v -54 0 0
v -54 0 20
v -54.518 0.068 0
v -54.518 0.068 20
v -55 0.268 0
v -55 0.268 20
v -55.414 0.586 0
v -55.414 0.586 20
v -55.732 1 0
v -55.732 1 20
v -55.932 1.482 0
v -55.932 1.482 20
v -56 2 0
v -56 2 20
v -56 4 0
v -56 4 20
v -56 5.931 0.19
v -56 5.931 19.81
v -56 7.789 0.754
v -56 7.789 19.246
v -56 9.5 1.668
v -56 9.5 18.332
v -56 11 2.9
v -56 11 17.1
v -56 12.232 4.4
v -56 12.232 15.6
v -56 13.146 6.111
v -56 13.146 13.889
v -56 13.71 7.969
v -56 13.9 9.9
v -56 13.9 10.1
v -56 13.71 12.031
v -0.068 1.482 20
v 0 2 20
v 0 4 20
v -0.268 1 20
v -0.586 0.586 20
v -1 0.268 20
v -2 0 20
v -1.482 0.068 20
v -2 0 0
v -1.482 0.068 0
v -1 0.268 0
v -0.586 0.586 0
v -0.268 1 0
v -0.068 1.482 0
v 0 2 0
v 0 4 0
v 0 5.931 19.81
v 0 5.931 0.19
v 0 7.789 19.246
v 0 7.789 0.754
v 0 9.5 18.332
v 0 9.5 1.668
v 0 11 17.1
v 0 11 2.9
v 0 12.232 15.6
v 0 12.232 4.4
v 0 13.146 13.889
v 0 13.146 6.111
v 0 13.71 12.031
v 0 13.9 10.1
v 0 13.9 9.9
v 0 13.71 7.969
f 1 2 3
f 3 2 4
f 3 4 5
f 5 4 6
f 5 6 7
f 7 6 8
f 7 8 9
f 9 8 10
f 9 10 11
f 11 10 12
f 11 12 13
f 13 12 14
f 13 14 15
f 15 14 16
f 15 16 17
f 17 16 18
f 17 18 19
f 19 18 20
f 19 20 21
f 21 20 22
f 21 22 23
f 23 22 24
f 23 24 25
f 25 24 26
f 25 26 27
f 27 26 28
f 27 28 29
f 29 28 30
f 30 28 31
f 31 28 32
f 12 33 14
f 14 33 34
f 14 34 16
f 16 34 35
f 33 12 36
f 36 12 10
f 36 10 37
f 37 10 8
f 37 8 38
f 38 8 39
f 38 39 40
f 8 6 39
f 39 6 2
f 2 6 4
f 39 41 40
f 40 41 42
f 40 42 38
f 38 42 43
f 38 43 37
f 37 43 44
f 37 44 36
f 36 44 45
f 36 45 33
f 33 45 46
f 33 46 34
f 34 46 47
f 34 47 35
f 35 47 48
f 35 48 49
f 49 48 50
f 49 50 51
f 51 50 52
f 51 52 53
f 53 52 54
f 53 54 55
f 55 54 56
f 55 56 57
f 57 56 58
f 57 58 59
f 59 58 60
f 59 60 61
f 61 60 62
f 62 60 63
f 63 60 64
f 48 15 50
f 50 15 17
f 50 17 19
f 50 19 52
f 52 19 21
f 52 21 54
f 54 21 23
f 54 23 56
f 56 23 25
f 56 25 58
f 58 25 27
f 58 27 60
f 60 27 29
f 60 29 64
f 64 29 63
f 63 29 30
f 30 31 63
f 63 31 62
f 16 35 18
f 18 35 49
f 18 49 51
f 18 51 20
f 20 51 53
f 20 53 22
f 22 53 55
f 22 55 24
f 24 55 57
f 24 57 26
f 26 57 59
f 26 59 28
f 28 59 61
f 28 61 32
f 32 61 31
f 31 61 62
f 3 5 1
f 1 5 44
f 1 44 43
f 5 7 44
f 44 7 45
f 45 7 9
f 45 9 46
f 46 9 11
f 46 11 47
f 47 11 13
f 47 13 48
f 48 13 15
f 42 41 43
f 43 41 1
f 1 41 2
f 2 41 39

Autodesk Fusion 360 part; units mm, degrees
sketch "Esboço1" plane through (0, 0, 0) normal (0, 1, 0) x (1, 0, 0)
  line L0 (0, 0) -> (-56, 0)
  line L1 (-56, 0) -> (-56, -20)
  line L2 (-56, -20) -> (0, -20)
  line L3 (0, -20) -> (0, 0)
  dimension "d1" = 56
  dimension "d2" = 20
extrude "Extrusão1" add sketch "Esboço1" along normal blind 13.9
fillet "Arredondamento1" radius 9.9 2 edges at (-28, 13.9, 20) (-28, 13.9, 0)
fillet "Fillet2" radius 2 2 edges at (0, 0, 10) (-56, 0, 10)
